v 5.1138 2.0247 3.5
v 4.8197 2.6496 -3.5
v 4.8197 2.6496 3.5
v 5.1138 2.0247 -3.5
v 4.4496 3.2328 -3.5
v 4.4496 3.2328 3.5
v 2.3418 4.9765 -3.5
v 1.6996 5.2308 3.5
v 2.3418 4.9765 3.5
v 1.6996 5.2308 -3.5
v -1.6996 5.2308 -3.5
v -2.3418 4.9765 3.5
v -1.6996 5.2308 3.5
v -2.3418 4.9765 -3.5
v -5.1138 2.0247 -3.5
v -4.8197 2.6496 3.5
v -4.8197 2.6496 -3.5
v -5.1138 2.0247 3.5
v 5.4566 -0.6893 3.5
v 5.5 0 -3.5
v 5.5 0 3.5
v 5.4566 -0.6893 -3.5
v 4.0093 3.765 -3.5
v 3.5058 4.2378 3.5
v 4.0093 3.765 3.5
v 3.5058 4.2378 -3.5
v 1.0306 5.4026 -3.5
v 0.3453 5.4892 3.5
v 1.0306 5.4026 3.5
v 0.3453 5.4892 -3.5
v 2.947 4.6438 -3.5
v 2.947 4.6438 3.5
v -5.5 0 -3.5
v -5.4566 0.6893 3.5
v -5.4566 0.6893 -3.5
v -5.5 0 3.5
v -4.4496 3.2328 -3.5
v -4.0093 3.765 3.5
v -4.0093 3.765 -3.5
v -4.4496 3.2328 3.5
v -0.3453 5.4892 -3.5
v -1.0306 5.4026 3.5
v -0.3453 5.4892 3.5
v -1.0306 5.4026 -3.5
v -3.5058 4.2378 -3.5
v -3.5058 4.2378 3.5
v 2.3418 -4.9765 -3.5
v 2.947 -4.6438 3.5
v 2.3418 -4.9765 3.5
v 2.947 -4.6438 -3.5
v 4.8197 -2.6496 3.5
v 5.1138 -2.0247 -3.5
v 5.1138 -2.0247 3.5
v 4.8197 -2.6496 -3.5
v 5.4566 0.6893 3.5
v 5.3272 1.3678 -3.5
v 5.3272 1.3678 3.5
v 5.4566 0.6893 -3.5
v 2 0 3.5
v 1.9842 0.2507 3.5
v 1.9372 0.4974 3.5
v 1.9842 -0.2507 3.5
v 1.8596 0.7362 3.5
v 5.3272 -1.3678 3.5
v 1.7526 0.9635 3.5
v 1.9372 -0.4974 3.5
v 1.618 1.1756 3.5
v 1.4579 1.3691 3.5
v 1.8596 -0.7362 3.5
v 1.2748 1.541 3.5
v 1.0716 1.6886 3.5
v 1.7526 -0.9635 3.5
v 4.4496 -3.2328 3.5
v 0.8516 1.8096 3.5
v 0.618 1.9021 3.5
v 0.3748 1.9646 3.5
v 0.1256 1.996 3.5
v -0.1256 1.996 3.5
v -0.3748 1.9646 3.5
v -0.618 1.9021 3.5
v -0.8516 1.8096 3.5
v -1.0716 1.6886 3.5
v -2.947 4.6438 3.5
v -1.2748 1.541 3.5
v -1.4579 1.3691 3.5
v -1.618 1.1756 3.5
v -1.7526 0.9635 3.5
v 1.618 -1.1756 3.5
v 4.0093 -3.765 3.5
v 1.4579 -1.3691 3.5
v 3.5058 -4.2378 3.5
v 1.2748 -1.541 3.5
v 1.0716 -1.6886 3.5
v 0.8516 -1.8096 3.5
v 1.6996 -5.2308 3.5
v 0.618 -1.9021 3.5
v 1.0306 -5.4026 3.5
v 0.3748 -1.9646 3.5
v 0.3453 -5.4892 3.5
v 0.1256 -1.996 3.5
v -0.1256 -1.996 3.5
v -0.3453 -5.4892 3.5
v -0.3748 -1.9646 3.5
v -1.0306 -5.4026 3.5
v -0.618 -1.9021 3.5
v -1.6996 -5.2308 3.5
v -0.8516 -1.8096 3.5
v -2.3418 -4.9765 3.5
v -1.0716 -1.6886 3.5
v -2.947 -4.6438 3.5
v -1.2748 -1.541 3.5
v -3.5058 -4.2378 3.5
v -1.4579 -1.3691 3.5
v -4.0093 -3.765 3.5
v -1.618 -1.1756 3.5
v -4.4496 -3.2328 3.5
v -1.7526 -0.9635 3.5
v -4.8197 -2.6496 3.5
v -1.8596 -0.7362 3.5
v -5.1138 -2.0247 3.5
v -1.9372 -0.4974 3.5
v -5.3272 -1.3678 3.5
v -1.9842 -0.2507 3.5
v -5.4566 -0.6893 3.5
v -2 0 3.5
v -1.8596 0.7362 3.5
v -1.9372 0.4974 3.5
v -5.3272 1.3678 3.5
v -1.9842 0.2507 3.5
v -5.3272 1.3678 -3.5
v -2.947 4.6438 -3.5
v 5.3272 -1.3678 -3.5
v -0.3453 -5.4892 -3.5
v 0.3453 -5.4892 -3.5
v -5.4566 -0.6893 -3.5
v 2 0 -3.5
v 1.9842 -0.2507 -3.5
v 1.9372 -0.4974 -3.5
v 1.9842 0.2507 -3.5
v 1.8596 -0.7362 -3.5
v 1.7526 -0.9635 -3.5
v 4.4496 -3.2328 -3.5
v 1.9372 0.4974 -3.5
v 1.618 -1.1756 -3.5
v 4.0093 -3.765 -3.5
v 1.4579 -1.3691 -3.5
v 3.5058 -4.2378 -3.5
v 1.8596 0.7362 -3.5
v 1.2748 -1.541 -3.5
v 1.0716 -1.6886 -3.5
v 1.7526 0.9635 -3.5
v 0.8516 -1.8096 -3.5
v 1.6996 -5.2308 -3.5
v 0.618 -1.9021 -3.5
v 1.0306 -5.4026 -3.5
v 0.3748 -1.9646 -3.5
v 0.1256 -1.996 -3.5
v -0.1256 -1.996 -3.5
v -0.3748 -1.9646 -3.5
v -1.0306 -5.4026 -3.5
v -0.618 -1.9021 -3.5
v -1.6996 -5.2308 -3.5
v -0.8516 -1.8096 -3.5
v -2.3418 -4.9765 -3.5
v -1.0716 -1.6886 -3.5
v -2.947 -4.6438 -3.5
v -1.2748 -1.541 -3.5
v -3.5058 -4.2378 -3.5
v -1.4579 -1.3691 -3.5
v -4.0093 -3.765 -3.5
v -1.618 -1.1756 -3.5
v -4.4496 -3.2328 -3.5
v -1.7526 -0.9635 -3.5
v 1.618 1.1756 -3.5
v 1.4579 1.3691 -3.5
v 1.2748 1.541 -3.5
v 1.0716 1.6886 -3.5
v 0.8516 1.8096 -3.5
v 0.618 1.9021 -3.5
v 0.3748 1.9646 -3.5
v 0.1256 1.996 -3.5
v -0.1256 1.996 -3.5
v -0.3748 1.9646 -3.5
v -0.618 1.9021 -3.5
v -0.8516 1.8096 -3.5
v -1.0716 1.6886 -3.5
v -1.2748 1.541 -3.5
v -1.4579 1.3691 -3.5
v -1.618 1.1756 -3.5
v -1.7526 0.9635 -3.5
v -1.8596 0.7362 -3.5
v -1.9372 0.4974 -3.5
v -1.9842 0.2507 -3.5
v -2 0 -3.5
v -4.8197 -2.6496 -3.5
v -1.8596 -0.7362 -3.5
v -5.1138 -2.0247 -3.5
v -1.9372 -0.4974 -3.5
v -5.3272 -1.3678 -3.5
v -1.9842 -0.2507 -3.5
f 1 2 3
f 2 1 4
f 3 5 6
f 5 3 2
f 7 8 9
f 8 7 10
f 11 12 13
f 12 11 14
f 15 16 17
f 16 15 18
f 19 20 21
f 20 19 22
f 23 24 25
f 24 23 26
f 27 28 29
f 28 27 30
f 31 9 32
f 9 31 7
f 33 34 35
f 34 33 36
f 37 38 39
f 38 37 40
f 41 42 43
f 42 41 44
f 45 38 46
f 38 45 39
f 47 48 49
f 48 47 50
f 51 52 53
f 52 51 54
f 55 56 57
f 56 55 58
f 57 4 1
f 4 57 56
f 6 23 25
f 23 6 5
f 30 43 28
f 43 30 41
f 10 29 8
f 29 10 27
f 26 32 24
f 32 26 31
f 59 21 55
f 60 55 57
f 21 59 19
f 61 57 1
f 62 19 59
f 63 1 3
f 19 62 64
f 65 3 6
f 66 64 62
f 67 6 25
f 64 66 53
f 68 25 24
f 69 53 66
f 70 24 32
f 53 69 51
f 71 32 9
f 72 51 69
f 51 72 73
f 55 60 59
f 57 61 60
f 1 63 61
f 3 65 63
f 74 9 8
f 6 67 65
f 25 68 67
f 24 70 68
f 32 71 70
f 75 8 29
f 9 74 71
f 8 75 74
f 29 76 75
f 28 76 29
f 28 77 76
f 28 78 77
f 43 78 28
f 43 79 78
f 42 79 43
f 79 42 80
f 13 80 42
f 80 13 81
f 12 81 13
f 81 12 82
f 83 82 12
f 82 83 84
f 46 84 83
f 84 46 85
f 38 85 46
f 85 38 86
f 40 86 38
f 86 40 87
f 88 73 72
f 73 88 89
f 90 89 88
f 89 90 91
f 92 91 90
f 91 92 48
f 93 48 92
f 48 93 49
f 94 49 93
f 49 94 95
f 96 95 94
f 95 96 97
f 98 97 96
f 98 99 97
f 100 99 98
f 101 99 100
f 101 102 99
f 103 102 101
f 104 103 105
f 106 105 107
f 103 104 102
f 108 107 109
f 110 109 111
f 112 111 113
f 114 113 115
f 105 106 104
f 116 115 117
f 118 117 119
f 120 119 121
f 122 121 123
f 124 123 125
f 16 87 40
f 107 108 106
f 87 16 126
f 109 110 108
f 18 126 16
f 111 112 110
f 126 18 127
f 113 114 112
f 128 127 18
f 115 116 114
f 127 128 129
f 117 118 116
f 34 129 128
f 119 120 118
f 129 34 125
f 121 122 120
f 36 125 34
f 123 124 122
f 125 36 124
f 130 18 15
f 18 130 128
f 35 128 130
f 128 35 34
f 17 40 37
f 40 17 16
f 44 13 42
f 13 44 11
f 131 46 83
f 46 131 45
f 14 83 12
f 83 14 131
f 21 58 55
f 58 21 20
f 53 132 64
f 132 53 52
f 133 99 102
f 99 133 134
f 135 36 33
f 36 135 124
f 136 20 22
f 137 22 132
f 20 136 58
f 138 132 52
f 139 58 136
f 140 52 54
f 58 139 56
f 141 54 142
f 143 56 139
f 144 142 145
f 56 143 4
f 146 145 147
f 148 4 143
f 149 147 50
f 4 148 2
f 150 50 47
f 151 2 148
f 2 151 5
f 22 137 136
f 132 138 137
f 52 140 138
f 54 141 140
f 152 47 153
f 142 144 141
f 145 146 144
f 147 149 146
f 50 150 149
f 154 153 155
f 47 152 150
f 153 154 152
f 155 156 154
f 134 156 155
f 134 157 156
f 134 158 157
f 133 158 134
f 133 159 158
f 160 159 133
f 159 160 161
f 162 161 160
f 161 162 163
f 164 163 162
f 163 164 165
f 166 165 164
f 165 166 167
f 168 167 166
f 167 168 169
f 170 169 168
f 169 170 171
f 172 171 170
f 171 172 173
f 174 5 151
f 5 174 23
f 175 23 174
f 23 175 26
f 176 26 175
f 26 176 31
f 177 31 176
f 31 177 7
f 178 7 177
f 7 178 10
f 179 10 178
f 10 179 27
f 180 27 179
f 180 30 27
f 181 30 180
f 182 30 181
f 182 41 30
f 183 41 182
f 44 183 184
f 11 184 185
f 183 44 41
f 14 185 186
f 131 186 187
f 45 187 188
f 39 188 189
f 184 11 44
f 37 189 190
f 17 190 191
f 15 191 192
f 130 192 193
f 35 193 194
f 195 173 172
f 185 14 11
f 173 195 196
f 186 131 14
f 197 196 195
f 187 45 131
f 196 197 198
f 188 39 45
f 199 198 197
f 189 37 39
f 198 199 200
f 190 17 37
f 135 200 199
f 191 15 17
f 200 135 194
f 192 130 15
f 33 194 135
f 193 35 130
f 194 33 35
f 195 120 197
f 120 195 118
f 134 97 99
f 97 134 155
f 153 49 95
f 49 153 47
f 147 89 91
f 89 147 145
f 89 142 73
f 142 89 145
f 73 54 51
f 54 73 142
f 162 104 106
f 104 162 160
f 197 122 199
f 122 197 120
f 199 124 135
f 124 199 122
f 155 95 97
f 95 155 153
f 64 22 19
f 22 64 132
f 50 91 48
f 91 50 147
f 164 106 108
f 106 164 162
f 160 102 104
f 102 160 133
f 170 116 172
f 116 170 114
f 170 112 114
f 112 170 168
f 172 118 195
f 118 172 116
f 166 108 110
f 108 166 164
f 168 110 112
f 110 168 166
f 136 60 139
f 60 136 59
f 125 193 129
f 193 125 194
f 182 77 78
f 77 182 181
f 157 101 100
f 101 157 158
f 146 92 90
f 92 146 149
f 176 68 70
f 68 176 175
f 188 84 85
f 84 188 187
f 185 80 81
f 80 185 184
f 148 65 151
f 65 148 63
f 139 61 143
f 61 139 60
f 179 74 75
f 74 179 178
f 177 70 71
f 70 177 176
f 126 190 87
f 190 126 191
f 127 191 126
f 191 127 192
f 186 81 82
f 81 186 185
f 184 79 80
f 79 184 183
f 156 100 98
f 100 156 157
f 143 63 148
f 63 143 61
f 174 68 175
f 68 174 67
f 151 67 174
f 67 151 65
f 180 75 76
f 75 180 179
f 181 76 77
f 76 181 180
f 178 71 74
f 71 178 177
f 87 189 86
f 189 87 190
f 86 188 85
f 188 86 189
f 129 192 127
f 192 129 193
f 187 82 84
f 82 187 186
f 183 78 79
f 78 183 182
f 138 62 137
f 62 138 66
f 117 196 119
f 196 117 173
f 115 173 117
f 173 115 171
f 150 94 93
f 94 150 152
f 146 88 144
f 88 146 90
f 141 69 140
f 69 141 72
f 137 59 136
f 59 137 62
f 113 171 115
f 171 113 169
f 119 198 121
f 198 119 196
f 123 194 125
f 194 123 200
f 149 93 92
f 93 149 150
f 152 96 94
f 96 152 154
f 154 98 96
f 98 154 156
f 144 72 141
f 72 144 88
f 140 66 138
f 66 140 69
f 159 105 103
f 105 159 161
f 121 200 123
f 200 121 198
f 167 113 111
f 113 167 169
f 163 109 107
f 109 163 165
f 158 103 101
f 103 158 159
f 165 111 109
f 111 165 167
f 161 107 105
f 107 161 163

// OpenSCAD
$fn = 50;


difference() {
	union() {
		translate(v = [0, 0, -3.5000000000]) {
			cylinder(h = 7, r = 5.5000000000);
		}
	}
	union() {
		translate(v = [0, 0, -100.0000000000]) {
			cylinder(h = 200, r = 2);
		}
	}
}
